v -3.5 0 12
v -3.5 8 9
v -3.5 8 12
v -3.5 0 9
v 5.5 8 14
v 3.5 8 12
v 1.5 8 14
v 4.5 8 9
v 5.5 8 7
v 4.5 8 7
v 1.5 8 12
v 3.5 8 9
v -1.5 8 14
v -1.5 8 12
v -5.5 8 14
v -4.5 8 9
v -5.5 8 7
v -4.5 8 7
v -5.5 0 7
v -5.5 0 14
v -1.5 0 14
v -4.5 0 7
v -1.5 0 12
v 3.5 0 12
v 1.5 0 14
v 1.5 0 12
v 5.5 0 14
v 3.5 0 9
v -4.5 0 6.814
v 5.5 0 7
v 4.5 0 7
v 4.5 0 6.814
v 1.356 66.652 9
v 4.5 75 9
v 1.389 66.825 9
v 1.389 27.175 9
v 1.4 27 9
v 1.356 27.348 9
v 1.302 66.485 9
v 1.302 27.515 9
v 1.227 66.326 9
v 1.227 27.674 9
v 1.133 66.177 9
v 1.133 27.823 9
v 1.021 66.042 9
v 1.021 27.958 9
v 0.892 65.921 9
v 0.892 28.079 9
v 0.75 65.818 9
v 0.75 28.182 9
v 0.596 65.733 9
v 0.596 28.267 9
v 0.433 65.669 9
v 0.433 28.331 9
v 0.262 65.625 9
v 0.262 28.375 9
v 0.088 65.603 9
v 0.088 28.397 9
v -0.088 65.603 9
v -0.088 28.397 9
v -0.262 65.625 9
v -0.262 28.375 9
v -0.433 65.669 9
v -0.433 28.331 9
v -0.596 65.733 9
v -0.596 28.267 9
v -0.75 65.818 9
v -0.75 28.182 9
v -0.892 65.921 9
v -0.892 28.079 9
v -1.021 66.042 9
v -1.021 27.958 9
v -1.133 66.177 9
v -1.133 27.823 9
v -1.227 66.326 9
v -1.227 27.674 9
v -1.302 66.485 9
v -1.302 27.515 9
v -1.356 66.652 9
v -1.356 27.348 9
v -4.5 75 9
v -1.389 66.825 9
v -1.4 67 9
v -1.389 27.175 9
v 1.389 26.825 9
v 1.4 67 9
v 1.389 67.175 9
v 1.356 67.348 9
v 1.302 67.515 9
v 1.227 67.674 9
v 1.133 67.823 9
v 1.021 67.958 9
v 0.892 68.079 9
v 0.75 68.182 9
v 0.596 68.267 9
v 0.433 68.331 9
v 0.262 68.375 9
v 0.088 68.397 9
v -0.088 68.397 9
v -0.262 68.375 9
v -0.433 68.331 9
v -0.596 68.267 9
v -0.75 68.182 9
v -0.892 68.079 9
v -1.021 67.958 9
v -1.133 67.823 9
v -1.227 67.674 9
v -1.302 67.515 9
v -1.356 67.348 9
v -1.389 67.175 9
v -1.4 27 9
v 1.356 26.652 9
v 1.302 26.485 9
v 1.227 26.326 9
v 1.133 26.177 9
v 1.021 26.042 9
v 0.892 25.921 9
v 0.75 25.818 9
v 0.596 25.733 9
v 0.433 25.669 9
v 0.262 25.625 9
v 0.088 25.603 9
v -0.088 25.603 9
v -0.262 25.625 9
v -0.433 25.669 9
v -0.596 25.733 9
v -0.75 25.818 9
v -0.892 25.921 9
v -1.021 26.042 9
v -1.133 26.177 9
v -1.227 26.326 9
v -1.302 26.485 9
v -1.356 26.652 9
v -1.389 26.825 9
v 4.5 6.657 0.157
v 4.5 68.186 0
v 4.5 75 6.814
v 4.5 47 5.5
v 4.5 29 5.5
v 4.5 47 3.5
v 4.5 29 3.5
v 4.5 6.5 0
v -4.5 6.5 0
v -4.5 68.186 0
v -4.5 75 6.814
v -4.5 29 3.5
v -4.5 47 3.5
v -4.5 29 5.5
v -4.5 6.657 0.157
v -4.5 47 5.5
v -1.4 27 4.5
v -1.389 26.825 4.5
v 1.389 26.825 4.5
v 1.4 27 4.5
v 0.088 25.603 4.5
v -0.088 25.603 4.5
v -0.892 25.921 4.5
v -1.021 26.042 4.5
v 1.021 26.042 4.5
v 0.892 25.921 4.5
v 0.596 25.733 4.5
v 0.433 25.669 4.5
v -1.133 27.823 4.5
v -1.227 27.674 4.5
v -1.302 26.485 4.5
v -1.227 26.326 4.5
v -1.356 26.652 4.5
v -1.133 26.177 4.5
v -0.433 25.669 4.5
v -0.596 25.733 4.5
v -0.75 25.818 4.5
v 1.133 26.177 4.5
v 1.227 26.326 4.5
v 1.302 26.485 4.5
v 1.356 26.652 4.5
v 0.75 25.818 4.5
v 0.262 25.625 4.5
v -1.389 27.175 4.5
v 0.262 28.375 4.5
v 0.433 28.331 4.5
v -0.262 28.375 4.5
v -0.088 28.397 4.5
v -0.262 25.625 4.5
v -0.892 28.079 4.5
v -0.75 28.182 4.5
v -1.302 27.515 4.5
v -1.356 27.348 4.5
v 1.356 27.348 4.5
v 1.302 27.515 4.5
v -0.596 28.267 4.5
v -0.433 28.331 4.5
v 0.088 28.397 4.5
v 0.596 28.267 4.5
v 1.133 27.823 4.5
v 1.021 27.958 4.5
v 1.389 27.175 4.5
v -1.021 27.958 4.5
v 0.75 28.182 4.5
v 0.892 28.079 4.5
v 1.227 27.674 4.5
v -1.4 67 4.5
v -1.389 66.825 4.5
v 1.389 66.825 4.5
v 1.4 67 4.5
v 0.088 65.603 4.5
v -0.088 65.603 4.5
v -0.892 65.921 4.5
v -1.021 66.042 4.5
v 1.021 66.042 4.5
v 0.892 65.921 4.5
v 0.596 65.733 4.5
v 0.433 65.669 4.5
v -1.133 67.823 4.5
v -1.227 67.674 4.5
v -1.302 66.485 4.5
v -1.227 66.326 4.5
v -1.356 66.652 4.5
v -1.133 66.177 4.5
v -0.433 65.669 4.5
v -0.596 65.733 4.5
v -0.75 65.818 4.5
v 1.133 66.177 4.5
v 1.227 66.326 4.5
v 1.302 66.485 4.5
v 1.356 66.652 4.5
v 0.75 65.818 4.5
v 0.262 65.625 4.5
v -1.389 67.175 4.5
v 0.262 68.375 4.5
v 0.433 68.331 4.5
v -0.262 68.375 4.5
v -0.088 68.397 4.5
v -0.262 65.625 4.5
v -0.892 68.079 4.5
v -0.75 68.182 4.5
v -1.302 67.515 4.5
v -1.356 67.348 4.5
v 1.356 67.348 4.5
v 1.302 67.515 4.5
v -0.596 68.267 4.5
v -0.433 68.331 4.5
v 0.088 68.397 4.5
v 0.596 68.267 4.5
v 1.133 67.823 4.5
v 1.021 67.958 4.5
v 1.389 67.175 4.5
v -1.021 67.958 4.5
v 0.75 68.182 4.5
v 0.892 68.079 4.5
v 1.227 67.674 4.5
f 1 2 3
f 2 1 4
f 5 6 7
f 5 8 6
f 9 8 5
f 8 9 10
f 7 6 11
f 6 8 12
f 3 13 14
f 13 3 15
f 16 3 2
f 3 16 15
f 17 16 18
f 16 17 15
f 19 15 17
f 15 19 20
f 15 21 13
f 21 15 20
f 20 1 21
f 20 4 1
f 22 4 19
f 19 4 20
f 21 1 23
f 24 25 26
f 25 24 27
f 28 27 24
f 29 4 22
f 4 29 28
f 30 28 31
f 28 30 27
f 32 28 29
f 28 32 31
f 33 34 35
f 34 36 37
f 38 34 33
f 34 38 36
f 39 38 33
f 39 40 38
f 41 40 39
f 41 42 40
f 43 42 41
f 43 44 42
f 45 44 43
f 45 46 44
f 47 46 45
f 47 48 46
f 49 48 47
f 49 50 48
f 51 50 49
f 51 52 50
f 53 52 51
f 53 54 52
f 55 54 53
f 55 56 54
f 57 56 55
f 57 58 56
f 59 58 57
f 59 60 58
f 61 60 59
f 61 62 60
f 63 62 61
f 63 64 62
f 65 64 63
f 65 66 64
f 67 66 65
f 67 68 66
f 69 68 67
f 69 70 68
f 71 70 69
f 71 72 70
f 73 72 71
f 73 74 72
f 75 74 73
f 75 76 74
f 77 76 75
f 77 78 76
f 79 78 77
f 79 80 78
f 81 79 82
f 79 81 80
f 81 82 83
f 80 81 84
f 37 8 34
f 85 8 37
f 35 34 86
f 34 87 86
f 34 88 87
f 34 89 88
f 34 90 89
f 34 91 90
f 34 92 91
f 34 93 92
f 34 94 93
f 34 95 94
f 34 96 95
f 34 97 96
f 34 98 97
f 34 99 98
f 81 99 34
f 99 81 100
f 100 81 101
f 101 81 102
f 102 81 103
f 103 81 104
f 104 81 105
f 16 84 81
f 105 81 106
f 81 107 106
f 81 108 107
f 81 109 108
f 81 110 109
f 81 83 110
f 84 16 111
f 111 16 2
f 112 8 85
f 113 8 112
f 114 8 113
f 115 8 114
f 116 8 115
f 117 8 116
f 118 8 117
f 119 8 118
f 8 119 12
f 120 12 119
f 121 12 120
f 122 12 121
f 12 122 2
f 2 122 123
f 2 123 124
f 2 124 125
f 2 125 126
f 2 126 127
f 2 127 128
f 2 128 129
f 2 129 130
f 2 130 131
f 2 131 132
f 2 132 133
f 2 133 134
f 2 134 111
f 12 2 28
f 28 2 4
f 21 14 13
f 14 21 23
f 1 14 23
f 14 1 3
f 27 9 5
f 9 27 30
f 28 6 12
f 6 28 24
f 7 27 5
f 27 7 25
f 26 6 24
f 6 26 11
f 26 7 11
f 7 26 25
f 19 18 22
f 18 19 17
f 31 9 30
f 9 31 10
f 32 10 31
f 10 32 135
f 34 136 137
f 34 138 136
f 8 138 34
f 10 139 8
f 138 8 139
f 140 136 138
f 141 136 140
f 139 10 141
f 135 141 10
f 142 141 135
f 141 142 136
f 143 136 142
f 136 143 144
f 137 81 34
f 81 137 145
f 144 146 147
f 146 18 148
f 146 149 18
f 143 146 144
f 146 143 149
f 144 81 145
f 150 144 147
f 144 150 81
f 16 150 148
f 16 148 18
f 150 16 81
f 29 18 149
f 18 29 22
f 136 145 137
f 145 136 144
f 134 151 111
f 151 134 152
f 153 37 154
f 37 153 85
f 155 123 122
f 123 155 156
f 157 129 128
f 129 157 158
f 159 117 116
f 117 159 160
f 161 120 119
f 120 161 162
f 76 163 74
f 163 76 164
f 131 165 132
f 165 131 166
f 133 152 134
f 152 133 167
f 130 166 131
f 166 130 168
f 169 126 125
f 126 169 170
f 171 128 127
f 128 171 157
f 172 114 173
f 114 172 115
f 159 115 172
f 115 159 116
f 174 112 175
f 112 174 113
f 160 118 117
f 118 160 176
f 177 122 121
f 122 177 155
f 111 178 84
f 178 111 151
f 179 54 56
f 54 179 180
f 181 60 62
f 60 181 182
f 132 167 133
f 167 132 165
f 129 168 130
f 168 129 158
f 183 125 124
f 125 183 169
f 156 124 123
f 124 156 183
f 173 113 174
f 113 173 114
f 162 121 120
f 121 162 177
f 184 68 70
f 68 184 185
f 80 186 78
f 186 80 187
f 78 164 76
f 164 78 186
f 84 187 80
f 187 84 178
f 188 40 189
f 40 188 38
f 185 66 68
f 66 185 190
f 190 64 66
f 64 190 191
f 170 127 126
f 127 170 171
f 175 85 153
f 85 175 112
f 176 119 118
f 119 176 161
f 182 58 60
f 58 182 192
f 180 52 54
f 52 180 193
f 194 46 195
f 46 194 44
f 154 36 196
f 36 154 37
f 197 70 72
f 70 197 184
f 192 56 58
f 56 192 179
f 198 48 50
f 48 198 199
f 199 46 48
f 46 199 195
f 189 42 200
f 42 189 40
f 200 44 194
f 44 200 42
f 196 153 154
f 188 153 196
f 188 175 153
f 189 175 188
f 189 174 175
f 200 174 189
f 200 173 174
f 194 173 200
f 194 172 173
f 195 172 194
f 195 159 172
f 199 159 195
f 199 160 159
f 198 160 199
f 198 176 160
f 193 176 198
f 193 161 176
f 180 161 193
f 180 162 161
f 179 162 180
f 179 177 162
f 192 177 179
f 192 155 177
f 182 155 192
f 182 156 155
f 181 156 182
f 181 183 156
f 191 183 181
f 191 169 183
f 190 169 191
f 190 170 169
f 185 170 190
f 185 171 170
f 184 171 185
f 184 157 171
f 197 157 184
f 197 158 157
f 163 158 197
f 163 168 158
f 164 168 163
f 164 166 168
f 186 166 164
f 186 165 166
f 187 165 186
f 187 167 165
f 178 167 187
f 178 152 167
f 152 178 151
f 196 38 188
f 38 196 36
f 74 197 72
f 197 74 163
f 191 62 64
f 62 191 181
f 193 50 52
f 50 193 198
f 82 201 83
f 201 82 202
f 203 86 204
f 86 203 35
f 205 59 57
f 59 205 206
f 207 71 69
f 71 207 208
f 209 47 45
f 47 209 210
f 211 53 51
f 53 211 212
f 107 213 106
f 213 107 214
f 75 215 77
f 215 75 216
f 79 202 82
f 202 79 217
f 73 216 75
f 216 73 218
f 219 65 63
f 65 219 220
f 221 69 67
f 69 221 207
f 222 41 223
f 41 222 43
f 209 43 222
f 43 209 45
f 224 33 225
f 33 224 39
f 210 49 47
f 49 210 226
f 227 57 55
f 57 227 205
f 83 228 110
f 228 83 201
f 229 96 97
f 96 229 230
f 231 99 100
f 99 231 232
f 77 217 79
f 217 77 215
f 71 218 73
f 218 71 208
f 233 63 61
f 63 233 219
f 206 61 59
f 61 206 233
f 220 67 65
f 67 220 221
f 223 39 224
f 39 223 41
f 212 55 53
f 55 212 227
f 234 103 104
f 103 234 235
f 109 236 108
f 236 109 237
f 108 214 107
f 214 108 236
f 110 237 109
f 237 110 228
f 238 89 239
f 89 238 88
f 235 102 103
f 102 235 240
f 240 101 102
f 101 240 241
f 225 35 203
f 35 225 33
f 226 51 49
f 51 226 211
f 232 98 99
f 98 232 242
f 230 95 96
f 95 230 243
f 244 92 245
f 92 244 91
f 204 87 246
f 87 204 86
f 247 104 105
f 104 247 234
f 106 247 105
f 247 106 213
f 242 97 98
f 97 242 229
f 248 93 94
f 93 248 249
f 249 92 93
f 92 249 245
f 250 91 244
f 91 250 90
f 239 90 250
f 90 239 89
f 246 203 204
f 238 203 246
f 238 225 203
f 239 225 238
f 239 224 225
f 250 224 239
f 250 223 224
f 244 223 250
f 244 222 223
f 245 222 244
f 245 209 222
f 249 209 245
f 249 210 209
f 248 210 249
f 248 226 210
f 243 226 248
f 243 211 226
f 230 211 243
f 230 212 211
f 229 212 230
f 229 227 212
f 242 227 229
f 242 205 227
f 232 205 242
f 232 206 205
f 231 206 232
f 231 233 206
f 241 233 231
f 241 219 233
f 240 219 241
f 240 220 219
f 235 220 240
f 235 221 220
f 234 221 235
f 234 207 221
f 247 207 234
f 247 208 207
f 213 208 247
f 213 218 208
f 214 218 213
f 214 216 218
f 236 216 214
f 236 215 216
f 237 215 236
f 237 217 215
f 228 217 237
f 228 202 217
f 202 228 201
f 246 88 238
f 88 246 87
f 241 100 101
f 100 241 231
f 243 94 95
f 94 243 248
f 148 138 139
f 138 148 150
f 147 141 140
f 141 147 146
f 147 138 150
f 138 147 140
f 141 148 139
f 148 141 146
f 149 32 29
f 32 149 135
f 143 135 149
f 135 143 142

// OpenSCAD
$fn=50;

KEEL_W=9.0;
KEEL_H=9.0;
KEEL_L=75;

module cable_clamp(y_position) {
    translate([1.5, y_position, 4.5]) {
        rotate([90, 0, 0]) {
            union() {
                // Vertical arm of the C-clamp 2
                translate([2.0, 0, 0]) cube([2, 5, 8]);
                // Horizontal arm of the C-clamp
                rotate([90, 0, 0])
                translate([0, 0, -5]) cube([2, 8, 2]);
                // Vertical arm of the C-clamp 1
                translate([-7, 0, 0]) cube([2, 5, 8]);
                // Horizontal arm of the C-clamp
                rotate([90, 0, 0])
                translate([-5.0, 0,-5]) cube([2, 8, 2]);
                // clamp bed
                rotate([90, 0, 0])
                translate([-7.0, 0,-0]) cube([11, 8, 2]);
            }
        }
    }
}

module cutout_group(y_position) {
    translate([0, y_position, 0]) {
        
        // front of keel slope
        translate([-5, -KEEL_L-1, -3])
        rotate([-45, 0, 0])
        //(x, z, y)
        cube([10, 11, 8]); 

        //center cutout - vent
        //translate([-1.0, -42.0, -5.0])
        //rotate([90,0,0])
        //y, z, x
        //cube([1.5, 10, 25]);

        // screw holes
        translate([0, -22, 0]) cylinder(h=5, d=2.8); 
        translate([0.0, -62, 0]) cylinder(h=5, d=2.8);   

        // thru slots for straps
        translate([-7.0, -42,-1]) cube([14, 18, 2]);       
        //translate([-7.0, -92,-1]) cube([14, 18, 2]);
        
    }
}

// translate and rotate so model starts at 0, 0, 0
// someone tell me why this has to be done by hand?
translate([0, 0, KEEL_H/2]) {
    rotate([180, 180, 0]) { // Flipping the entire object along the Y axis
        difference() {
            union() {           
                // keel
                rotate([90,0,0])
                linear_extrude(KEEL_L) square([KEEL_W, KEEL_H], center=true); 
                // cable clamp
                cable_clamp(0);
                // measuring posts
                //translate([0,  MOUNT_HOLE_OFFSET+15, 0]) cylinder(h=7, d=1.0);            
                //translate([0, MOUNT_HOLE_OFFSET+30, 0]) cylinder(h=7, d=1.0);
            }
            
            cutout_group(-5);
            
            // rear of keel slope
            translate([-5, -1, -10])
            rotate([45, 0, 0])
            //(x, z, y)
            cube([10, 11, 8]);  
        }
    }
}
